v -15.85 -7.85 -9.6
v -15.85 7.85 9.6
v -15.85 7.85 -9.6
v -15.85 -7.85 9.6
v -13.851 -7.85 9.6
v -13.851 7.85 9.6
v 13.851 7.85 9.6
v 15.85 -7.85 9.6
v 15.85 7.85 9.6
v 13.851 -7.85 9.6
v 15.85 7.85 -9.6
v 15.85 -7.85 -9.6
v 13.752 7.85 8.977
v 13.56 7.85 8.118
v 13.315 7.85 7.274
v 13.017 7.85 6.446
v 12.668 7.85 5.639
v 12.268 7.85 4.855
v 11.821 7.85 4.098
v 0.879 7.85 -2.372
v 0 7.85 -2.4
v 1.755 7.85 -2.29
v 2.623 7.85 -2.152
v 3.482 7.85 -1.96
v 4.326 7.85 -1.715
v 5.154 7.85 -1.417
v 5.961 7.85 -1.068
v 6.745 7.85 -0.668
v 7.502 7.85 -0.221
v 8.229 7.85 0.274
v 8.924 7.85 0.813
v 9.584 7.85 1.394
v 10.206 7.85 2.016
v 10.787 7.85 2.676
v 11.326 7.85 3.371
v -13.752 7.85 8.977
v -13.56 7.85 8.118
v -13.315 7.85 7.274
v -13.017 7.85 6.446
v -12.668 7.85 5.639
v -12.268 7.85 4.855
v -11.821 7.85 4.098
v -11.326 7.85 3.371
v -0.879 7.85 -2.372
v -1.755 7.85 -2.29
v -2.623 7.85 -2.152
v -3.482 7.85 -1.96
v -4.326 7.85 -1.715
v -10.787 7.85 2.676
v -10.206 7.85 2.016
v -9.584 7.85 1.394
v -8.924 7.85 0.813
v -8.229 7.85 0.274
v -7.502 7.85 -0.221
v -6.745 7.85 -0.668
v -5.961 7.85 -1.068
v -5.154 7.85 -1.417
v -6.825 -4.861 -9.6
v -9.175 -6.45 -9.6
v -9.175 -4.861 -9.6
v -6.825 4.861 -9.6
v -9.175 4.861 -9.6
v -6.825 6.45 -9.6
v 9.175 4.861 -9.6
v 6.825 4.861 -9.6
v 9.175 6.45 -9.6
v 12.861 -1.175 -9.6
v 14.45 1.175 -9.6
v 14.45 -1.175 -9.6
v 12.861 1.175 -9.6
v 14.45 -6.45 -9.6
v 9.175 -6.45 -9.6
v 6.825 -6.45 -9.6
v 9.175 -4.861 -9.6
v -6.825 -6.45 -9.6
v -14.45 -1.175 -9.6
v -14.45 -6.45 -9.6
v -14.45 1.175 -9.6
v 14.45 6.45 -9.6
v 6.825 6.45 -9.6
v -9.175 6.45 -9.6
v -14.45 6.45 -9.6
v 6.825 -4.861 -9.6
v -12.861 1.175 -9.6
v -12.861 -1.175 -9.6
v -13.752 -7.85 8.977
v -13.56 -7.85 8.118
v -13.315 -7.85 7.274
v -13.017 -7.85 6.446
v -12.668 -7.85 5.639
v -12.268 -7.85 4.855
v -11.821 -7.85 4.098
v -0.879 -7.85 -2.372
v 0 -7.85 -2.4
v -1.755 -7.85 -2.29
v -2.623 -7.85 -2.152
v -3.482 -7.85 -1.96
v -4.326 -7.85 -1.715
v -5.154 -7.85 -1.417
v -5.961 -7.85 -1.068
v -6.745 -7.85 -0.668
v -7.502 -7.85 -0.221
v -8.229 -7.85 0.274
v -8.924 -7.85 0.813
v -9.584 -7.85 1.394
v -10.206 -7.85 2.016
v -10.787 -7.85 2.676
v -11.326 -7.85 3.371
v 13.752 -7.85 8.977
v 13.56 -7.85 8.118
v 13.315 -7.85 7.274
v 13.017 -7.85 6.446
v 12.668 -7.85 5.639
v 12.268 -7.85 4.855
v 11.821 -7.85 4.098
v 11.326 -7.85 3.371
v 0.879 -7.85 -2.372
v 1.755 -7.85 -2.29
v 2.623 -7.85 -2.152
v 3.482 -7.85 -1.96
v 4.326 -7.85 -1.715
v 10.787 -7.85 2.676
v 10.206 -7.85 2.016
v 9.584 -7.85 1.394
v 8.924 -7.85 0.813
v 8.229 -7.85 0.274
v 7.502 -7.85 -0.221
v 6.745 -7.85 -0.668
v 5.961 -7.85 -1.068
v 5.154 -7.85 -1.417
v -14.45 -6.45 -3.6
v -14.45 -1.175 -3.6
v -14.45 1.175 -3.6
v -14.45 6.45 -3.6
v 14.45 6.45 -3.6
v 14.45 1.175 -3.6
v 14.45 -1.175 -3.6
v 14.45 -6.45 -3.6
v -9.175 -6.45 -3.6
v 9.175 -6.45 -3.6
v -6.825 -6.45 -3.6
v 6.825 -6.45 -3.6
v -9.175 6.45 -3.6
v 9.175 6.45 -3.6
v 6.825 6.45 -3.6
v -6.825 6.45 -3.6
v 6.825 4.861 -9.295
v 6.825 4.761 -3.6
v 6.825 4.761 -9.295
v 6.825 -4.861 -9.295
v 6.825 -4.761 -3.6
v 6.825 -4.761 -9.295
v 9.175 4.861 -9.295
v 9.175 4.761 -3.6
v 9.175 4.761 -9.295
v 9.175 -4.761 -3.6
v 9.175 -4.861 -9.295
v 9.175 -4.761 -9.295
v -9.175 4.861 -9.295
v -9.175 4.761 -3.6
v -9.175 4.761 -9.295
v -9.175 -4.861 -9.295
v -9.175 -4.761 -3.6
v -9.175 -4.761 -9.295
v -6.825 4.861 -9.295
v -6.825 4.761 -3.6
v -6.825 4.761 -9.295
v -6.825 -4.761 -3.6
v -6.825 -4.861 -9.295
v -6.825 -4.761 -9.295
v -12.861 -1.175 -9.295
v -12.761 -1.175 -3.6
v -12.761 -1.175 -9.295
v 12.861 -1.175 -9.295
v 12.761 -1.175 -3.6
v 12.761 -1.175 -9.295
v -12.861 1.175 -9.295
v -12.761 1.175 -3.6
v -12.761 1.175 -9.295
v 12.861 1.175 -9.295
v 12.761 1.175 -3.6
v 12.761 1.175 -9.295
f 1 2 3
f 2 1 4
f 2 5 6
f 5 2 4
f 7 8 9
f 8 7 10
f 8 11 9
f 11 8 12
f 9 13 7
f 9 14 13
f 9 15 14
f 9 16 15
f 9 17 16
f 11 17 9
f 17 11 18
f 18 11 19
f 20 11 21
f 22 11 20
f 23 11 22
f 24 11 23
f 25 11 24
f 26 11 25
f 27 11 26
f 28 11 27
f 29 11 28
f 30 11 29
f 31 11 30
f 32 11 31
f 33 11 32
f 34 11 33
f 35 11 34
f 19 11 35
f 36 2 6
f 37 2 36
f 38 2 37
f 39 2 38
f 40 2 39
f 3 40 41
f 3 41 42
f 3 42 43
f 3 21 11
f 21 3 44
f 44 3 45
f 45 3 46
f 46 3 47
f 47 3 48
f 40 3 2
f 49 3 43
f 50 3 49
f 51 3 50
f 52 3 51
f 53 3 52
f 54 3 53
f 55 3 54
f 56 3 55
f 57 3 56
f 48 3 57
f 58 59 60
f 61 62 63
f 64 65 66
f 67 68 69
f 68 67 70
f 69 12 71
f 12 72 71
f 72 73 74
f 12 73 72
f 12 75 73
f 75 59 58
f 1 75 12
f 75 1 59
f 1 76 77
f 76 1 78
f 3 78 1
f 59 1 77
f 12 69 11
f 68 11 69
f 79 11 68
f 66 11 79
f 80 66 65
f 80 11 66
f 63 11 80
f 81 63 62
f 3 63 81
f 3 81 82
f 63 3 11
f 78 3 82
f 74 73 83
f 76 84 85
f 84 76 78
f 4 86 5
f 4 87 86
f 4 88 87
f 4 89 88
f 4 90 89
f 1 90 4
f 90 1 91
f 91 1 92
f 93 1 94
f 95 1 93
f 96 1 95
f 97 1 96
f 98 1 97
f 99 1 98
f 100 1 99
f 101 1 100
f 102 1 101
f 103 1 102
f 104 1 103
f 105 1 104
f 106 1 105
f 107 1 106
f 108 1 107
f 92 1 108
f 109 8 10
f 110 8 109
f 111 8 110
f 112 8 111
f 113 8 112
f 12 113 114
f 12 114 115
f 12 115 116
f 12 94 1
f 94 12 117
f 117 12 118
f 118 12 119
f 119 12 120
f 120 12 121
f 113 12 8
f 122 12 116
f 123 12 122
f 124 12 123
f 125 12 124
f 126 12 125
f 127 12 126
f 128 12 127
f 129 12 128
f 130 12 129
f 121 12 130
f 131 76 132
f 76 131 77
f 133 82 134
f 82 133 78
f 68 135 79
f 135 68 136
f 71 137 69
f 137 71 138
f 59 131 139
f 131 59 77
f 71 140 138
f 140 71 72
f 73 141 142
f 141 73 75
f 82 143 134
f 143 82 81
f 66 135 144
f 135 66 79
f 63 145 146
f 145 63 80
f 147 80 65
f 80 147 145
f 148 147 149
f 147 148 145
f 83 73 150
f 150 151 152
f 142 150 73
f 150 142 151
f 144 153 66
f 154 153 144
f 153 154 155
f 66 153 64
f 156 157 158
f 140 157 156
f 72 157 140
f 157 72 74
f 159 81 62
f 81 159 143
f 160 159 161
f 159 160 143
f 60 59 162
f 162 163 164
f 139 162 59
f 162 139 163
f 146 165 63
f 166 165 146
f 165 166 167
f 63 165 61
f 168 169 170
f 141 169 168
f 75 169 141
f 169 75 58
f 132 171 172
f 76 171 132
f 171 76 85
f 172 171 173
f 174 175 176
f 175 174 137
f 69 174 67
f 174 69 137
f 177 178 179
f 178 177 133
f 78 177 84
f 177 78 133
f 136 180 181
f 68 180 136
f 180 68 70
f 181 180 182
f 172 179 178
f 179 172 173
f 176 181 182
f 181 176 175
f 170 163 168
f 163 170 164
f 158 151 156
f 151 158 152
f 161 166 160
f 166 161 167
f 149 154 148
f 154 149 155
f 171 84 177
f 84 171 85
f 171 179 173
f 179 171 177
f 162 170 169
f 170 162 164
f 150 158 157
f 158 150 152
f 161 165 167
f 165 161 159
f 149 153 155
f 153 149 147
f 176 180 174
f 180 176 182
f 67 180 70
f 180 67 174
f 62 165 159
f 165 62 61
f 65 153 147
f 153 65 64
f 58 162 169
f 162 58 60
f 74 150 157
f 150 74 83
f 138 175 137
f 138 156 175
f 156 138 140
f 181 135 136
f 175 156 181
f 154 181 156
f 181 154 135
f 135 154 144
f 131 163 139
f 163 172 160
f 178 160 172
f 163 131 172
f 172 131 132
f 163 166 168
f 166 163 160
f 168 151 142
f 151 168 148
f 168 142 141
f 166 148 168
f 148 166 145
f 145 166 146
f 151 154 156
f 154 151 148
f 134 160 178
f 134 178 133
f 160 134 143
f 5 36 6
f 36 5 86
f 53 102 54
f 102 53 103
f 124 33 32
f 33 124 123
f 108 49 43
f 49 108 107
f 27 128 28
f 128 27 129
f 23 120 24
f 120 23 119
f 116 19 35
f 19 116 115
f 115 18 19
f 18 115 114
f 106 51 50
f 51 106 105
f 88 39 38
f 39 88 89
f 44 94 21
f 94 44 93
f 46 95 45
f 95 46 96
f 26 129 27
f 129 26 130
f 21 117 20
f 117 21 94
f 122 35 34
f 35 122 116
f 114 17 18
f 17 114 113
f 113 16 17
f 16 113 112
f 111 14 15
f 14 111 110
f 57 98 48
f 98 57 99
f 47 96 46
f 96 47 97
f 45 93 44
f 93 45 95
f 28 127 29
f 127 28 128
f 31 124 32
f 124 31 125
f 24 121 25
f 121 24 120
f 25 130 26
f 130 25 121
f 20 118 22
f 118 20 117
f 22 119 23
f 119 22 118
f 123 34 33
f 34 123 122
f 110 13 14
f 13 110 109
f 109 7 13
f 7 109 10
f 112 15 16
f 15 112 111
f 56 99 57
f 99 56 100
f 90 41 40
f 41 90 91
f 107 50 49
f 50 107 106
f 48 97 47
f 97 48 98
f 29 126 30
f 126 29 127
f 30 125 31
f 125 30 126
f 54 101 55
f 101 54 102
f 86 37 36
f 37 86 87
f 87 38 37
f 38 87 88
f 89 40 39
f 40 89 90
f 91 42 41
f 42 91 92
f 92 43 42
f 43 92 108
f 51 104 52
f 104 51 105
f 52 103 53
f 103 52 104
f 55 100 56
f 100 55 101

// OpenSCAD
// file: duplo-block-lib.scad
// Duplo-compatible block library (C) by Joachim Eibl 2013
// Licence: CC BY-NC-SA 3.0 
// Creative Commons: attribution, non commercial, share alike
// See: http://creativecommons.org/licenses/by-nc-sa/3.0/
// This lib is derived from http://www.thingiverse.com/thing:1778
// LEGO and DUPLO are trademarks of the Lego group.


//the duplo itself
// parameters are: 
// width: 1 =standard 4x4 duplo width.
// length: 1= standard 4x4 duplo length
// height: 1= minimal duplo height

duploRaster = 16;
dr = duploRaster;
duploHeight=duploRaster * 0.6;



// nibble radius: a square brick with size (dr x dr) turned by 45° on a neighbor nibble fits exactly:
duploNibbleRadius = dr * (1-1/1.41421) +0.1; // = 4.686+0.1,  dr*(1-1/sqrt(2))
duploBottomNibbleRadius = dr*(1.41421-1); //= dr * 1.41421 / 2  - duploNibbleRadius = 6.6277
duploGapBottom = -0.05; // recommended range from -0.1 to 0.1 with lower values for tighter fit.
gapBetweenBricks = 0.3; // real duplo probably has 0.4
duploWall = 1.55;// For duplo compatibility this is not so important, only if smaller lego should fit.
                   // (dr/2 - duploNibbleRadius - gapBetweenBricks)/2 = 1.507
firstLayerGap = 0.2; // for easier fit and to compensate for printers that print a thicker bottom
firstLayerGapHeight = 0.3;

quality = 60; // quality: low/fast (e.g. 10) for design, high/slow (e.g. 50) for final rendering 


// if some pieces are missing: "Edit"->"Preferences"->"Advanced"->"Turn off rendering at: " [1000000] "elements"


//duplo(2,2,1,true,false);



module duplo(width,length,height,topNibbles,bottomHoles) 
{
   //size definitions
   
   ns = duploRaster / 2;  //nibble start offset
   nbo = duploRaster;  // nibble bottom offset
   effWidth = width * duploRaster-gapBetweenBricks;
   effLength = length*duploRaster-gapBetweenBricks;
   littleWallThickness = 2.35; // 1.35 is standard but bigger is better for printing

   //the cube
   difference() {
      cube([effWidth,effLength,height*duploHeight],true);
      translate([0,0,-duploWall])    
         cube([width*duploRaster - 2*duploWall,length*duploRaster-2*duploWall,height*duploHeight],true);
   }

   if(topNibbles)
   {
      //nibbles on top
      for(j=[1:length])
      {
         for (i = [1:width])
         {
            // disabled
            translate([ns-(i-width*0.5)*dr,ns-(j-length*0.5)*dr,6.9+(height-1)*duploHeight/2]) duplonibble();
         }
      }
   }

   if(bottomHoles)
   {
      difference() {
         cube([effWidth,effLength,height*duploHeight],true);
      
         //nibbles on bottom
         for(j=[1:length])
         {
            for (i = [1:width])
            {
               // disabled
               translate([ns-(i-width*0.5)*dr,ns-(j-length*0.5)*dr,-0.1-height*duploHeight/2])
               {
                  cylinder(r=duploNibbleRadius+0.2,h=6,center=false,$fn = quality);
                  cylinder(r=duploNibbleRadius+0.4,h=0.5,center=false,$fn = quality);
               }
            }
         }
      }
   }
   else
   {
   //nibble bottom
   if ( length > 1 && width > 1 )
   {
      for(j=[1:length-1])
      {
         for (i = [1:width-1])
         {
            translate([(i-width*0.5)*dr,(j-length*0.5)*dr,0]) duplobottomnibble(height*duploHeight);
         }
      }
   }
   //little walls inside
   difference() 
   {
      union()
       {
         for(j=[1:length])
         {   
            translate([0,ns-(j-length/2)*dr,0 ]) cube([effWidth,littleWallThickness,height*duploHeight],true);
         }
         for (i = [1:width])
         {
            translate([ns-(i-width/2)*dr,0,0 ]) cube([littleWallThickness,effLength,height*duploHeight],true);
         }
         for(j=[1:length-1])
         {   
            if (width==1)
               translate([0,ns-(j-length/2+0.5)*dr,0 ]) cube([effWidth,littleWallThickness,height*duploHeight],true);
         }
      }
      if ( width > 1 )
      {
         cube([(width-1)*dr + duploNibbleRadius*2+duploGapBottom,(length-1)*dr+duploNibbleRadius*2+duploGapBottom,height*duploHeight+2],true);
         translate([0,0,-height*duploHeight/2+firstLayerGapHeight/2]) 
         cube([(width-1)*dr + duploNibbleRadius*2+duploGapBottom+firstLayerGap,(length-1)*dr+duploNibbleRadius*2+duploGapBottom+0.2,firstLayerGapHeight+0.01],true);
      }
      else
         for(j=[1:length])
         {   
            translate([0,(+j-length/2 - 0.5)*dr,0 ])
               cube([ duploNibbleRadius*2+duploGapBottom,duploNibbleRadius*2+duploGapBottom,height*duploHeight+2],true);
         }
   }
   }
}


module duplonibble()
{
   difference() {
      union() {
         translate([0,0,-0.5/2]) cylinder(r=duploNibbleRadius,h=4.5-1,center=true,$fn = quality);
         translate([0,0,4.5/2-1]) cylinder(r1=duploNibbleRadius,r2=duploNibbleRadius-0.2,h=1,$fn = quality);
      }
      cylinder(r=duploNibbleRadius-1.3,h=5.5,center=true,$fn = quality);
   }
}

module duplobottomnibble(height)
{
   difference() {
      union(){
         cylinder(r=duploBottomNibbleRadius-firstLayerGap,h=height,center=true,$fn = quality);
         translate([0,0,bottomGapHeight/2]) cylinder(r=duploBottomNibbleRadius,h=height-firstLayerGapHeight,center=true,$fn = quality);
      }
      cylinder(r=duploBottomNibbleRadius-1.3,h=height+1,center=true,$fn = quality);
   }

}
// file: duplo-marblerun.scad
// Duplo-compatible marble run pieces (C) by Joachim Eibl 2013
// Licence: CC BY-NC-SA 3.0 
// Creative Commons: attribution, non commercial, share alike
// See: http://creativecommons.org/licenses/by-nc-sa/3.0/
// LEGO and DUPLO are trademarks of the Lego group.

// Version 2 (added longRampPiece and cosinusSlopedRampPiece)

// The duplo-block-lib is derived from http://www.thingiverse.com/thing:1778
include <duplo-block-lib.scad>

quality = 50; // quality: low/fast (e.g. 10) for design, high/slow (e.g. 50) for final rendering 
innerRadius=14*dr/16;

pr = 2*dr + 2; // plate raster

// if some pieces are missing: "Edit"->"Preferences"->"Advanced"->"Turn off rendering at: " [1000000] "elements"

// Choose either plate or individual pieces from the plates.
//smallPlate(); // simple pieces, each only once
//bigPlate();     // more straight and corner pieces

//straightPiece();
//cornerPiece();
//rampPiece();
//ramp2Piece();
//longRampPiece();
//cosinusSlopedRampPiece();
//crossingPiece();
//straightHolePiece(); 
//cornerHolePiece(); 
//rampCornerPiece(steps=quality);
//mirror([0,1,0]) rampCornerPiece(steps=quality);
//endPiece();

module smallPlate()
{
   translate([pr,pr,0])            straightPiece();
   translate([pr,0,0])             cornerPiece();
   translate([0,0,duploHeight])    rampPiece();
   translate([0,pr,0])             endPiece();
}

module bigPlate()
{
   for( i=[0:1]) {
      translate([pr,pr*i,0])                       straightPiece(); 
      translate([2*pr ,pr*i,0])                    cornerPiece(); 
   }
   translate([pr,pr*2,0])                          straightPiece();
   translate([pr,pr*3,0])                          crossingPiece();
   for( i=[2:3]) { 
      translate([2*pr ,pr*i,0])                    endPiece(); 
   }
   translate([0*pr,pr*1,duploHeight])              rampPiece();
   translate([0*pr,pr*0,duploHeight])              ramp2Piece();
   for( i=[0:1]) {
      translate([-pr,pr*(i+2),duploHeight])        straightHolePiece(); 
      translate([0*pr,pr*(i+2),duploHeight])       cornerHolePiece(); 
   }

   translate([-pr,0,duploHeight])                  rampCornerPiece(steps=quality); 
   translate([-pr,pr,duploHeight]) mirror([0,1,0]) rampCornerPiece(steps=quality); 
}

module duploMarbleRunBase(width,length,height,topNibbles,bottomHoles)
{
   union() {
      duplo(width,length,height,topNibbles,bottomHoles);
      translate([0,0,3])
         cube([width*duploRaster-0.4,length*duploRaster-0.4,duploHeight*height-6],center=true);
   }
}

module straightPiece()
{
   difference() {
      duploMarbleRunBase(2,2,2,false);
      translate([0,dr+1, duploHeight+2]) rotate([90,0,0])
         cylinder( duploRaster*4, innerRadius, innerRadius,$fn = quality*2 );
   }
}

module straightHolePiece()
{
   difference() {
      duploMarbleRunBase(2,2,4,true);
      translate([0,dr+1, 0*duploHeight+2]) rotate([90,0,0])
         cylinder( duploRaster*4, innerRadius, innerRadius,$fn = quality*2 );
   }
}

module crossingPiece()
{
   difference() {
      duploMarbleRunBase(2,2,2,false);
      translate([0,dr+1, duploHeight+2]) rotate([90,0,0])
         cylinder( duploRaster*4, innerRadius, innerRadius,$fn = quality*2 );
      translate([-dr-1,0, duploHeight+2]) rotate([0,90,0])
         cylinder( duploRaster*4, innerRadius, innerRadius,$fn = quality*2 );
   }
}

module endPiece()
{
   difference() {
      duploMarbleRunBase(2,2,2,false);
      union() {
         translate([0,dr+2, duploHeight+2]) rotate([90,0,0])
            cylinder( dr+2, innerRadius, innerRadius,$fn = quality*2 );
         translate([0,0, duploHeight+2]) rotate([90,0,0])
            sphere( innerRadius, $fn = quality*2 );
      }
   }
}

module cornerPiece()
{
   difference() {
      duploMarbleRunBase(2,2,2,false);
      translate([-dr,-dr,duploHeight+2])rotate_extrude(convexity = 10, $fn = quality*2)
         translate([dr, 0, 0]) circle(r = innerRadius, $fn = quality*2);
   }
}

module cornerHolePiece()
{
   difference() {
      duploMarbleRunBase(2,2,4,true);
      translate([-dr,-dr,0*duploHeight+2])rotate_extrude(convexity = 10, $fn = quality*2)
         translate([dr, 0, 0]) circle(r = innerRadius, $fn = quality*2);
   }
}

module rampPiece()
{
   angle = 30.964; // 180 / 3.14159 * atan(duploHeight/duploRaster);
   vscale = 0.8575; // cos(angle);
   difference() {
      duploMarbleRunBase(2,2,4,false);
      
      union() {
         translate([0,dr+1, 2*duploHeight+2]) rotate([90+angle,0,0]) scale([1,vscale,1])
            cylinder( duploRaster*4, innerRadius, innerRadius,$fn = quality*2 );   
         translate([-2*dr,dr+0, 2*duploHeight+0]) rotate([90+angle,0,0])
            cube( [duploRaster*4,duploRaster*8,duploRaster*4] );   
      }
   }
}

module ramp2Piece()
{
   angle = 16.699; // 180 / 3.14159 * atan(0.5*duploHeight/duploRaster);
   vscale = 0.9578; // cos(angle);
   difference() {
      duploMarbleRunBase(2,2,4,false);      
      union() {
         translate([0,dr+1, duploHeight+2]) rotate([90+angle,0,0]) scale([1,vscale,1])
                  cylinder( duploRaster*6, innerRadius, innerRadius,, center=true, $fn = quality*2 );     
         translate([-2*dr,2*dr+0, 1.5*duploHeight+0]) rotate([90+angle,0,0])
                  cube( [duploRaster*4,duploRaster*4,duploRaster*4] );       
      }
   }
}

module longRampPiece()
{
   angle = 16.699; // 180 / 3.14159 * atan(0.5*duploHeight/duploRaster);
   vscale = 0.9578; // cos(angle);
   difference() {
      duploMarbleRunBase(2,4,4,false);      
      union() {
         translate([0,0*dr+1, duploHeight+2]) rotate([90+angle,0,0]) scale([1,vscale,1])
                  cylinder( duploRaster*6, innerRadius, innerRadius,, center=true, $fn = quality*2 );     
         translate([-2*dr,4*dr+0, 3*duploHeight+0]) rotate([90+angle,0,0])
                  cube( [duploRaster*4,duploRaster*4,duploRaster*8] );       
      }
   }
}

module cosinusSlopedRampPiece()
{
   difference() {
      duploMarbleRunBase(2,4,4,false);
      cosinusSlopedRamp(quality);      
   }
}

module cosinusSlopedRamp(steps) // nr of steps: e.g. coarse=10, fine=90
{
   translate([0,-2*dr,duploHeight])
   for(i=[0:180/steps:180])
   {
      translate([0,+i/180*dr*4-0.01,-cos(i)*duploHeight+2]) 
      multmatrix(m = [ [1, 0, 0, 0], [0, 1, 0, 0], [0, sin(i)*0.5, 1, 0], [0, 0, 0, 1] ]) 
      union() {
         rotate([-90,0,0]) cylinder(h=4.1*dr/steps,r=innerRadius, $fn=steps);
         translate([-dr,0,-2]) cube([4*dr,4.1*dr/steps,2*dr]);
      }
   }
}

module rampCornerPiece(steps)
{
   difference() {
      duploMarbleRunBase(2,2,4,false);
      cornerRamp(steps);      
   }
}

module cornerRamp(steps) // nr of steps: e.g. coarse=10, fine=90
{
   translate([-dr,-dr,2])
   for(i=[0:90/steps:90])
   {
      rotate([0,0,i]) translate([dr,0,i/90*2*duploHeight]) {
         // Using the rotate&shearing matrix produces nicer results with less steps.
         multmatrix(m = [ [1, 0, 0, 0], [0, 0, 1, -50/steps], [0, 1, 0.4, 0], [0, 0, 0, 1] ]) 
             union() {
                cylinder(h=50/steps,r=innerRadius, $fn=steps);
                translate([-dr,-2,0]) cube([4*duploRaster,4*duploRaster,70/steps]);
             }
      }
   }
}
// main file
// Duplo-compatible marble run fork (C) by Tobias Wilken
// LEGO and DUPLO are trademarks of the Lego group.

// The duplo-marbelrun-lib and duplo-block-lib are from https://www.thingiverse.com/thing:159219
// The duplo-block-lib is derived from http://www.thingiverse.com/thing:1778

include <duplo-marblerun.scad>

quality = 50; // quality: low/fast (e.g. 10) for design, high/slow (e.g. 50) for final rendering

// duplo base size
width = 2;
length = 2;
height = 3;

// Effective duplo width (tried to extract from both libraries, adjusted manually a bit, can surely be improved or made clearer)
effWidth = 2 * (width * duploRaster - duploWall - 2 * gapBetweenBricks);

// Height of the run way (tried to extract from duplo-marblerun, adjsted manually a bit, can be improved, too)
runHeight = 3.5 * duploHeight; // Height of the marble run
ankle = 70; // Ankle for the outflows, random ankle looks good :-)

ankleWidthOffset = tan(90 - ankle) * runHeight; // Width offset to make sure the run height is correct based on the ankle
ankleHeightOffset = sin(ankle) * innerRadius; // Height offset to make sure the run height is correct based on the ankle

outflowTranslateWidth = effWidth / 2 + ankleWidthOffset;
outflowTranslateHeight = -1.5 * duploHeight + ankleHeightOffset;
outflowCylinderLength = duploRaster*4; // Just long enough

   difference() {
      duploMarbleRunBase(2,1,2,false);
      translate([0,dr+1, duploHeight+2]) rotate([90,0,0])
         cylinder( duploRaster*4, innerRadius, innerRadius,$fn = quality*2 );
   }
